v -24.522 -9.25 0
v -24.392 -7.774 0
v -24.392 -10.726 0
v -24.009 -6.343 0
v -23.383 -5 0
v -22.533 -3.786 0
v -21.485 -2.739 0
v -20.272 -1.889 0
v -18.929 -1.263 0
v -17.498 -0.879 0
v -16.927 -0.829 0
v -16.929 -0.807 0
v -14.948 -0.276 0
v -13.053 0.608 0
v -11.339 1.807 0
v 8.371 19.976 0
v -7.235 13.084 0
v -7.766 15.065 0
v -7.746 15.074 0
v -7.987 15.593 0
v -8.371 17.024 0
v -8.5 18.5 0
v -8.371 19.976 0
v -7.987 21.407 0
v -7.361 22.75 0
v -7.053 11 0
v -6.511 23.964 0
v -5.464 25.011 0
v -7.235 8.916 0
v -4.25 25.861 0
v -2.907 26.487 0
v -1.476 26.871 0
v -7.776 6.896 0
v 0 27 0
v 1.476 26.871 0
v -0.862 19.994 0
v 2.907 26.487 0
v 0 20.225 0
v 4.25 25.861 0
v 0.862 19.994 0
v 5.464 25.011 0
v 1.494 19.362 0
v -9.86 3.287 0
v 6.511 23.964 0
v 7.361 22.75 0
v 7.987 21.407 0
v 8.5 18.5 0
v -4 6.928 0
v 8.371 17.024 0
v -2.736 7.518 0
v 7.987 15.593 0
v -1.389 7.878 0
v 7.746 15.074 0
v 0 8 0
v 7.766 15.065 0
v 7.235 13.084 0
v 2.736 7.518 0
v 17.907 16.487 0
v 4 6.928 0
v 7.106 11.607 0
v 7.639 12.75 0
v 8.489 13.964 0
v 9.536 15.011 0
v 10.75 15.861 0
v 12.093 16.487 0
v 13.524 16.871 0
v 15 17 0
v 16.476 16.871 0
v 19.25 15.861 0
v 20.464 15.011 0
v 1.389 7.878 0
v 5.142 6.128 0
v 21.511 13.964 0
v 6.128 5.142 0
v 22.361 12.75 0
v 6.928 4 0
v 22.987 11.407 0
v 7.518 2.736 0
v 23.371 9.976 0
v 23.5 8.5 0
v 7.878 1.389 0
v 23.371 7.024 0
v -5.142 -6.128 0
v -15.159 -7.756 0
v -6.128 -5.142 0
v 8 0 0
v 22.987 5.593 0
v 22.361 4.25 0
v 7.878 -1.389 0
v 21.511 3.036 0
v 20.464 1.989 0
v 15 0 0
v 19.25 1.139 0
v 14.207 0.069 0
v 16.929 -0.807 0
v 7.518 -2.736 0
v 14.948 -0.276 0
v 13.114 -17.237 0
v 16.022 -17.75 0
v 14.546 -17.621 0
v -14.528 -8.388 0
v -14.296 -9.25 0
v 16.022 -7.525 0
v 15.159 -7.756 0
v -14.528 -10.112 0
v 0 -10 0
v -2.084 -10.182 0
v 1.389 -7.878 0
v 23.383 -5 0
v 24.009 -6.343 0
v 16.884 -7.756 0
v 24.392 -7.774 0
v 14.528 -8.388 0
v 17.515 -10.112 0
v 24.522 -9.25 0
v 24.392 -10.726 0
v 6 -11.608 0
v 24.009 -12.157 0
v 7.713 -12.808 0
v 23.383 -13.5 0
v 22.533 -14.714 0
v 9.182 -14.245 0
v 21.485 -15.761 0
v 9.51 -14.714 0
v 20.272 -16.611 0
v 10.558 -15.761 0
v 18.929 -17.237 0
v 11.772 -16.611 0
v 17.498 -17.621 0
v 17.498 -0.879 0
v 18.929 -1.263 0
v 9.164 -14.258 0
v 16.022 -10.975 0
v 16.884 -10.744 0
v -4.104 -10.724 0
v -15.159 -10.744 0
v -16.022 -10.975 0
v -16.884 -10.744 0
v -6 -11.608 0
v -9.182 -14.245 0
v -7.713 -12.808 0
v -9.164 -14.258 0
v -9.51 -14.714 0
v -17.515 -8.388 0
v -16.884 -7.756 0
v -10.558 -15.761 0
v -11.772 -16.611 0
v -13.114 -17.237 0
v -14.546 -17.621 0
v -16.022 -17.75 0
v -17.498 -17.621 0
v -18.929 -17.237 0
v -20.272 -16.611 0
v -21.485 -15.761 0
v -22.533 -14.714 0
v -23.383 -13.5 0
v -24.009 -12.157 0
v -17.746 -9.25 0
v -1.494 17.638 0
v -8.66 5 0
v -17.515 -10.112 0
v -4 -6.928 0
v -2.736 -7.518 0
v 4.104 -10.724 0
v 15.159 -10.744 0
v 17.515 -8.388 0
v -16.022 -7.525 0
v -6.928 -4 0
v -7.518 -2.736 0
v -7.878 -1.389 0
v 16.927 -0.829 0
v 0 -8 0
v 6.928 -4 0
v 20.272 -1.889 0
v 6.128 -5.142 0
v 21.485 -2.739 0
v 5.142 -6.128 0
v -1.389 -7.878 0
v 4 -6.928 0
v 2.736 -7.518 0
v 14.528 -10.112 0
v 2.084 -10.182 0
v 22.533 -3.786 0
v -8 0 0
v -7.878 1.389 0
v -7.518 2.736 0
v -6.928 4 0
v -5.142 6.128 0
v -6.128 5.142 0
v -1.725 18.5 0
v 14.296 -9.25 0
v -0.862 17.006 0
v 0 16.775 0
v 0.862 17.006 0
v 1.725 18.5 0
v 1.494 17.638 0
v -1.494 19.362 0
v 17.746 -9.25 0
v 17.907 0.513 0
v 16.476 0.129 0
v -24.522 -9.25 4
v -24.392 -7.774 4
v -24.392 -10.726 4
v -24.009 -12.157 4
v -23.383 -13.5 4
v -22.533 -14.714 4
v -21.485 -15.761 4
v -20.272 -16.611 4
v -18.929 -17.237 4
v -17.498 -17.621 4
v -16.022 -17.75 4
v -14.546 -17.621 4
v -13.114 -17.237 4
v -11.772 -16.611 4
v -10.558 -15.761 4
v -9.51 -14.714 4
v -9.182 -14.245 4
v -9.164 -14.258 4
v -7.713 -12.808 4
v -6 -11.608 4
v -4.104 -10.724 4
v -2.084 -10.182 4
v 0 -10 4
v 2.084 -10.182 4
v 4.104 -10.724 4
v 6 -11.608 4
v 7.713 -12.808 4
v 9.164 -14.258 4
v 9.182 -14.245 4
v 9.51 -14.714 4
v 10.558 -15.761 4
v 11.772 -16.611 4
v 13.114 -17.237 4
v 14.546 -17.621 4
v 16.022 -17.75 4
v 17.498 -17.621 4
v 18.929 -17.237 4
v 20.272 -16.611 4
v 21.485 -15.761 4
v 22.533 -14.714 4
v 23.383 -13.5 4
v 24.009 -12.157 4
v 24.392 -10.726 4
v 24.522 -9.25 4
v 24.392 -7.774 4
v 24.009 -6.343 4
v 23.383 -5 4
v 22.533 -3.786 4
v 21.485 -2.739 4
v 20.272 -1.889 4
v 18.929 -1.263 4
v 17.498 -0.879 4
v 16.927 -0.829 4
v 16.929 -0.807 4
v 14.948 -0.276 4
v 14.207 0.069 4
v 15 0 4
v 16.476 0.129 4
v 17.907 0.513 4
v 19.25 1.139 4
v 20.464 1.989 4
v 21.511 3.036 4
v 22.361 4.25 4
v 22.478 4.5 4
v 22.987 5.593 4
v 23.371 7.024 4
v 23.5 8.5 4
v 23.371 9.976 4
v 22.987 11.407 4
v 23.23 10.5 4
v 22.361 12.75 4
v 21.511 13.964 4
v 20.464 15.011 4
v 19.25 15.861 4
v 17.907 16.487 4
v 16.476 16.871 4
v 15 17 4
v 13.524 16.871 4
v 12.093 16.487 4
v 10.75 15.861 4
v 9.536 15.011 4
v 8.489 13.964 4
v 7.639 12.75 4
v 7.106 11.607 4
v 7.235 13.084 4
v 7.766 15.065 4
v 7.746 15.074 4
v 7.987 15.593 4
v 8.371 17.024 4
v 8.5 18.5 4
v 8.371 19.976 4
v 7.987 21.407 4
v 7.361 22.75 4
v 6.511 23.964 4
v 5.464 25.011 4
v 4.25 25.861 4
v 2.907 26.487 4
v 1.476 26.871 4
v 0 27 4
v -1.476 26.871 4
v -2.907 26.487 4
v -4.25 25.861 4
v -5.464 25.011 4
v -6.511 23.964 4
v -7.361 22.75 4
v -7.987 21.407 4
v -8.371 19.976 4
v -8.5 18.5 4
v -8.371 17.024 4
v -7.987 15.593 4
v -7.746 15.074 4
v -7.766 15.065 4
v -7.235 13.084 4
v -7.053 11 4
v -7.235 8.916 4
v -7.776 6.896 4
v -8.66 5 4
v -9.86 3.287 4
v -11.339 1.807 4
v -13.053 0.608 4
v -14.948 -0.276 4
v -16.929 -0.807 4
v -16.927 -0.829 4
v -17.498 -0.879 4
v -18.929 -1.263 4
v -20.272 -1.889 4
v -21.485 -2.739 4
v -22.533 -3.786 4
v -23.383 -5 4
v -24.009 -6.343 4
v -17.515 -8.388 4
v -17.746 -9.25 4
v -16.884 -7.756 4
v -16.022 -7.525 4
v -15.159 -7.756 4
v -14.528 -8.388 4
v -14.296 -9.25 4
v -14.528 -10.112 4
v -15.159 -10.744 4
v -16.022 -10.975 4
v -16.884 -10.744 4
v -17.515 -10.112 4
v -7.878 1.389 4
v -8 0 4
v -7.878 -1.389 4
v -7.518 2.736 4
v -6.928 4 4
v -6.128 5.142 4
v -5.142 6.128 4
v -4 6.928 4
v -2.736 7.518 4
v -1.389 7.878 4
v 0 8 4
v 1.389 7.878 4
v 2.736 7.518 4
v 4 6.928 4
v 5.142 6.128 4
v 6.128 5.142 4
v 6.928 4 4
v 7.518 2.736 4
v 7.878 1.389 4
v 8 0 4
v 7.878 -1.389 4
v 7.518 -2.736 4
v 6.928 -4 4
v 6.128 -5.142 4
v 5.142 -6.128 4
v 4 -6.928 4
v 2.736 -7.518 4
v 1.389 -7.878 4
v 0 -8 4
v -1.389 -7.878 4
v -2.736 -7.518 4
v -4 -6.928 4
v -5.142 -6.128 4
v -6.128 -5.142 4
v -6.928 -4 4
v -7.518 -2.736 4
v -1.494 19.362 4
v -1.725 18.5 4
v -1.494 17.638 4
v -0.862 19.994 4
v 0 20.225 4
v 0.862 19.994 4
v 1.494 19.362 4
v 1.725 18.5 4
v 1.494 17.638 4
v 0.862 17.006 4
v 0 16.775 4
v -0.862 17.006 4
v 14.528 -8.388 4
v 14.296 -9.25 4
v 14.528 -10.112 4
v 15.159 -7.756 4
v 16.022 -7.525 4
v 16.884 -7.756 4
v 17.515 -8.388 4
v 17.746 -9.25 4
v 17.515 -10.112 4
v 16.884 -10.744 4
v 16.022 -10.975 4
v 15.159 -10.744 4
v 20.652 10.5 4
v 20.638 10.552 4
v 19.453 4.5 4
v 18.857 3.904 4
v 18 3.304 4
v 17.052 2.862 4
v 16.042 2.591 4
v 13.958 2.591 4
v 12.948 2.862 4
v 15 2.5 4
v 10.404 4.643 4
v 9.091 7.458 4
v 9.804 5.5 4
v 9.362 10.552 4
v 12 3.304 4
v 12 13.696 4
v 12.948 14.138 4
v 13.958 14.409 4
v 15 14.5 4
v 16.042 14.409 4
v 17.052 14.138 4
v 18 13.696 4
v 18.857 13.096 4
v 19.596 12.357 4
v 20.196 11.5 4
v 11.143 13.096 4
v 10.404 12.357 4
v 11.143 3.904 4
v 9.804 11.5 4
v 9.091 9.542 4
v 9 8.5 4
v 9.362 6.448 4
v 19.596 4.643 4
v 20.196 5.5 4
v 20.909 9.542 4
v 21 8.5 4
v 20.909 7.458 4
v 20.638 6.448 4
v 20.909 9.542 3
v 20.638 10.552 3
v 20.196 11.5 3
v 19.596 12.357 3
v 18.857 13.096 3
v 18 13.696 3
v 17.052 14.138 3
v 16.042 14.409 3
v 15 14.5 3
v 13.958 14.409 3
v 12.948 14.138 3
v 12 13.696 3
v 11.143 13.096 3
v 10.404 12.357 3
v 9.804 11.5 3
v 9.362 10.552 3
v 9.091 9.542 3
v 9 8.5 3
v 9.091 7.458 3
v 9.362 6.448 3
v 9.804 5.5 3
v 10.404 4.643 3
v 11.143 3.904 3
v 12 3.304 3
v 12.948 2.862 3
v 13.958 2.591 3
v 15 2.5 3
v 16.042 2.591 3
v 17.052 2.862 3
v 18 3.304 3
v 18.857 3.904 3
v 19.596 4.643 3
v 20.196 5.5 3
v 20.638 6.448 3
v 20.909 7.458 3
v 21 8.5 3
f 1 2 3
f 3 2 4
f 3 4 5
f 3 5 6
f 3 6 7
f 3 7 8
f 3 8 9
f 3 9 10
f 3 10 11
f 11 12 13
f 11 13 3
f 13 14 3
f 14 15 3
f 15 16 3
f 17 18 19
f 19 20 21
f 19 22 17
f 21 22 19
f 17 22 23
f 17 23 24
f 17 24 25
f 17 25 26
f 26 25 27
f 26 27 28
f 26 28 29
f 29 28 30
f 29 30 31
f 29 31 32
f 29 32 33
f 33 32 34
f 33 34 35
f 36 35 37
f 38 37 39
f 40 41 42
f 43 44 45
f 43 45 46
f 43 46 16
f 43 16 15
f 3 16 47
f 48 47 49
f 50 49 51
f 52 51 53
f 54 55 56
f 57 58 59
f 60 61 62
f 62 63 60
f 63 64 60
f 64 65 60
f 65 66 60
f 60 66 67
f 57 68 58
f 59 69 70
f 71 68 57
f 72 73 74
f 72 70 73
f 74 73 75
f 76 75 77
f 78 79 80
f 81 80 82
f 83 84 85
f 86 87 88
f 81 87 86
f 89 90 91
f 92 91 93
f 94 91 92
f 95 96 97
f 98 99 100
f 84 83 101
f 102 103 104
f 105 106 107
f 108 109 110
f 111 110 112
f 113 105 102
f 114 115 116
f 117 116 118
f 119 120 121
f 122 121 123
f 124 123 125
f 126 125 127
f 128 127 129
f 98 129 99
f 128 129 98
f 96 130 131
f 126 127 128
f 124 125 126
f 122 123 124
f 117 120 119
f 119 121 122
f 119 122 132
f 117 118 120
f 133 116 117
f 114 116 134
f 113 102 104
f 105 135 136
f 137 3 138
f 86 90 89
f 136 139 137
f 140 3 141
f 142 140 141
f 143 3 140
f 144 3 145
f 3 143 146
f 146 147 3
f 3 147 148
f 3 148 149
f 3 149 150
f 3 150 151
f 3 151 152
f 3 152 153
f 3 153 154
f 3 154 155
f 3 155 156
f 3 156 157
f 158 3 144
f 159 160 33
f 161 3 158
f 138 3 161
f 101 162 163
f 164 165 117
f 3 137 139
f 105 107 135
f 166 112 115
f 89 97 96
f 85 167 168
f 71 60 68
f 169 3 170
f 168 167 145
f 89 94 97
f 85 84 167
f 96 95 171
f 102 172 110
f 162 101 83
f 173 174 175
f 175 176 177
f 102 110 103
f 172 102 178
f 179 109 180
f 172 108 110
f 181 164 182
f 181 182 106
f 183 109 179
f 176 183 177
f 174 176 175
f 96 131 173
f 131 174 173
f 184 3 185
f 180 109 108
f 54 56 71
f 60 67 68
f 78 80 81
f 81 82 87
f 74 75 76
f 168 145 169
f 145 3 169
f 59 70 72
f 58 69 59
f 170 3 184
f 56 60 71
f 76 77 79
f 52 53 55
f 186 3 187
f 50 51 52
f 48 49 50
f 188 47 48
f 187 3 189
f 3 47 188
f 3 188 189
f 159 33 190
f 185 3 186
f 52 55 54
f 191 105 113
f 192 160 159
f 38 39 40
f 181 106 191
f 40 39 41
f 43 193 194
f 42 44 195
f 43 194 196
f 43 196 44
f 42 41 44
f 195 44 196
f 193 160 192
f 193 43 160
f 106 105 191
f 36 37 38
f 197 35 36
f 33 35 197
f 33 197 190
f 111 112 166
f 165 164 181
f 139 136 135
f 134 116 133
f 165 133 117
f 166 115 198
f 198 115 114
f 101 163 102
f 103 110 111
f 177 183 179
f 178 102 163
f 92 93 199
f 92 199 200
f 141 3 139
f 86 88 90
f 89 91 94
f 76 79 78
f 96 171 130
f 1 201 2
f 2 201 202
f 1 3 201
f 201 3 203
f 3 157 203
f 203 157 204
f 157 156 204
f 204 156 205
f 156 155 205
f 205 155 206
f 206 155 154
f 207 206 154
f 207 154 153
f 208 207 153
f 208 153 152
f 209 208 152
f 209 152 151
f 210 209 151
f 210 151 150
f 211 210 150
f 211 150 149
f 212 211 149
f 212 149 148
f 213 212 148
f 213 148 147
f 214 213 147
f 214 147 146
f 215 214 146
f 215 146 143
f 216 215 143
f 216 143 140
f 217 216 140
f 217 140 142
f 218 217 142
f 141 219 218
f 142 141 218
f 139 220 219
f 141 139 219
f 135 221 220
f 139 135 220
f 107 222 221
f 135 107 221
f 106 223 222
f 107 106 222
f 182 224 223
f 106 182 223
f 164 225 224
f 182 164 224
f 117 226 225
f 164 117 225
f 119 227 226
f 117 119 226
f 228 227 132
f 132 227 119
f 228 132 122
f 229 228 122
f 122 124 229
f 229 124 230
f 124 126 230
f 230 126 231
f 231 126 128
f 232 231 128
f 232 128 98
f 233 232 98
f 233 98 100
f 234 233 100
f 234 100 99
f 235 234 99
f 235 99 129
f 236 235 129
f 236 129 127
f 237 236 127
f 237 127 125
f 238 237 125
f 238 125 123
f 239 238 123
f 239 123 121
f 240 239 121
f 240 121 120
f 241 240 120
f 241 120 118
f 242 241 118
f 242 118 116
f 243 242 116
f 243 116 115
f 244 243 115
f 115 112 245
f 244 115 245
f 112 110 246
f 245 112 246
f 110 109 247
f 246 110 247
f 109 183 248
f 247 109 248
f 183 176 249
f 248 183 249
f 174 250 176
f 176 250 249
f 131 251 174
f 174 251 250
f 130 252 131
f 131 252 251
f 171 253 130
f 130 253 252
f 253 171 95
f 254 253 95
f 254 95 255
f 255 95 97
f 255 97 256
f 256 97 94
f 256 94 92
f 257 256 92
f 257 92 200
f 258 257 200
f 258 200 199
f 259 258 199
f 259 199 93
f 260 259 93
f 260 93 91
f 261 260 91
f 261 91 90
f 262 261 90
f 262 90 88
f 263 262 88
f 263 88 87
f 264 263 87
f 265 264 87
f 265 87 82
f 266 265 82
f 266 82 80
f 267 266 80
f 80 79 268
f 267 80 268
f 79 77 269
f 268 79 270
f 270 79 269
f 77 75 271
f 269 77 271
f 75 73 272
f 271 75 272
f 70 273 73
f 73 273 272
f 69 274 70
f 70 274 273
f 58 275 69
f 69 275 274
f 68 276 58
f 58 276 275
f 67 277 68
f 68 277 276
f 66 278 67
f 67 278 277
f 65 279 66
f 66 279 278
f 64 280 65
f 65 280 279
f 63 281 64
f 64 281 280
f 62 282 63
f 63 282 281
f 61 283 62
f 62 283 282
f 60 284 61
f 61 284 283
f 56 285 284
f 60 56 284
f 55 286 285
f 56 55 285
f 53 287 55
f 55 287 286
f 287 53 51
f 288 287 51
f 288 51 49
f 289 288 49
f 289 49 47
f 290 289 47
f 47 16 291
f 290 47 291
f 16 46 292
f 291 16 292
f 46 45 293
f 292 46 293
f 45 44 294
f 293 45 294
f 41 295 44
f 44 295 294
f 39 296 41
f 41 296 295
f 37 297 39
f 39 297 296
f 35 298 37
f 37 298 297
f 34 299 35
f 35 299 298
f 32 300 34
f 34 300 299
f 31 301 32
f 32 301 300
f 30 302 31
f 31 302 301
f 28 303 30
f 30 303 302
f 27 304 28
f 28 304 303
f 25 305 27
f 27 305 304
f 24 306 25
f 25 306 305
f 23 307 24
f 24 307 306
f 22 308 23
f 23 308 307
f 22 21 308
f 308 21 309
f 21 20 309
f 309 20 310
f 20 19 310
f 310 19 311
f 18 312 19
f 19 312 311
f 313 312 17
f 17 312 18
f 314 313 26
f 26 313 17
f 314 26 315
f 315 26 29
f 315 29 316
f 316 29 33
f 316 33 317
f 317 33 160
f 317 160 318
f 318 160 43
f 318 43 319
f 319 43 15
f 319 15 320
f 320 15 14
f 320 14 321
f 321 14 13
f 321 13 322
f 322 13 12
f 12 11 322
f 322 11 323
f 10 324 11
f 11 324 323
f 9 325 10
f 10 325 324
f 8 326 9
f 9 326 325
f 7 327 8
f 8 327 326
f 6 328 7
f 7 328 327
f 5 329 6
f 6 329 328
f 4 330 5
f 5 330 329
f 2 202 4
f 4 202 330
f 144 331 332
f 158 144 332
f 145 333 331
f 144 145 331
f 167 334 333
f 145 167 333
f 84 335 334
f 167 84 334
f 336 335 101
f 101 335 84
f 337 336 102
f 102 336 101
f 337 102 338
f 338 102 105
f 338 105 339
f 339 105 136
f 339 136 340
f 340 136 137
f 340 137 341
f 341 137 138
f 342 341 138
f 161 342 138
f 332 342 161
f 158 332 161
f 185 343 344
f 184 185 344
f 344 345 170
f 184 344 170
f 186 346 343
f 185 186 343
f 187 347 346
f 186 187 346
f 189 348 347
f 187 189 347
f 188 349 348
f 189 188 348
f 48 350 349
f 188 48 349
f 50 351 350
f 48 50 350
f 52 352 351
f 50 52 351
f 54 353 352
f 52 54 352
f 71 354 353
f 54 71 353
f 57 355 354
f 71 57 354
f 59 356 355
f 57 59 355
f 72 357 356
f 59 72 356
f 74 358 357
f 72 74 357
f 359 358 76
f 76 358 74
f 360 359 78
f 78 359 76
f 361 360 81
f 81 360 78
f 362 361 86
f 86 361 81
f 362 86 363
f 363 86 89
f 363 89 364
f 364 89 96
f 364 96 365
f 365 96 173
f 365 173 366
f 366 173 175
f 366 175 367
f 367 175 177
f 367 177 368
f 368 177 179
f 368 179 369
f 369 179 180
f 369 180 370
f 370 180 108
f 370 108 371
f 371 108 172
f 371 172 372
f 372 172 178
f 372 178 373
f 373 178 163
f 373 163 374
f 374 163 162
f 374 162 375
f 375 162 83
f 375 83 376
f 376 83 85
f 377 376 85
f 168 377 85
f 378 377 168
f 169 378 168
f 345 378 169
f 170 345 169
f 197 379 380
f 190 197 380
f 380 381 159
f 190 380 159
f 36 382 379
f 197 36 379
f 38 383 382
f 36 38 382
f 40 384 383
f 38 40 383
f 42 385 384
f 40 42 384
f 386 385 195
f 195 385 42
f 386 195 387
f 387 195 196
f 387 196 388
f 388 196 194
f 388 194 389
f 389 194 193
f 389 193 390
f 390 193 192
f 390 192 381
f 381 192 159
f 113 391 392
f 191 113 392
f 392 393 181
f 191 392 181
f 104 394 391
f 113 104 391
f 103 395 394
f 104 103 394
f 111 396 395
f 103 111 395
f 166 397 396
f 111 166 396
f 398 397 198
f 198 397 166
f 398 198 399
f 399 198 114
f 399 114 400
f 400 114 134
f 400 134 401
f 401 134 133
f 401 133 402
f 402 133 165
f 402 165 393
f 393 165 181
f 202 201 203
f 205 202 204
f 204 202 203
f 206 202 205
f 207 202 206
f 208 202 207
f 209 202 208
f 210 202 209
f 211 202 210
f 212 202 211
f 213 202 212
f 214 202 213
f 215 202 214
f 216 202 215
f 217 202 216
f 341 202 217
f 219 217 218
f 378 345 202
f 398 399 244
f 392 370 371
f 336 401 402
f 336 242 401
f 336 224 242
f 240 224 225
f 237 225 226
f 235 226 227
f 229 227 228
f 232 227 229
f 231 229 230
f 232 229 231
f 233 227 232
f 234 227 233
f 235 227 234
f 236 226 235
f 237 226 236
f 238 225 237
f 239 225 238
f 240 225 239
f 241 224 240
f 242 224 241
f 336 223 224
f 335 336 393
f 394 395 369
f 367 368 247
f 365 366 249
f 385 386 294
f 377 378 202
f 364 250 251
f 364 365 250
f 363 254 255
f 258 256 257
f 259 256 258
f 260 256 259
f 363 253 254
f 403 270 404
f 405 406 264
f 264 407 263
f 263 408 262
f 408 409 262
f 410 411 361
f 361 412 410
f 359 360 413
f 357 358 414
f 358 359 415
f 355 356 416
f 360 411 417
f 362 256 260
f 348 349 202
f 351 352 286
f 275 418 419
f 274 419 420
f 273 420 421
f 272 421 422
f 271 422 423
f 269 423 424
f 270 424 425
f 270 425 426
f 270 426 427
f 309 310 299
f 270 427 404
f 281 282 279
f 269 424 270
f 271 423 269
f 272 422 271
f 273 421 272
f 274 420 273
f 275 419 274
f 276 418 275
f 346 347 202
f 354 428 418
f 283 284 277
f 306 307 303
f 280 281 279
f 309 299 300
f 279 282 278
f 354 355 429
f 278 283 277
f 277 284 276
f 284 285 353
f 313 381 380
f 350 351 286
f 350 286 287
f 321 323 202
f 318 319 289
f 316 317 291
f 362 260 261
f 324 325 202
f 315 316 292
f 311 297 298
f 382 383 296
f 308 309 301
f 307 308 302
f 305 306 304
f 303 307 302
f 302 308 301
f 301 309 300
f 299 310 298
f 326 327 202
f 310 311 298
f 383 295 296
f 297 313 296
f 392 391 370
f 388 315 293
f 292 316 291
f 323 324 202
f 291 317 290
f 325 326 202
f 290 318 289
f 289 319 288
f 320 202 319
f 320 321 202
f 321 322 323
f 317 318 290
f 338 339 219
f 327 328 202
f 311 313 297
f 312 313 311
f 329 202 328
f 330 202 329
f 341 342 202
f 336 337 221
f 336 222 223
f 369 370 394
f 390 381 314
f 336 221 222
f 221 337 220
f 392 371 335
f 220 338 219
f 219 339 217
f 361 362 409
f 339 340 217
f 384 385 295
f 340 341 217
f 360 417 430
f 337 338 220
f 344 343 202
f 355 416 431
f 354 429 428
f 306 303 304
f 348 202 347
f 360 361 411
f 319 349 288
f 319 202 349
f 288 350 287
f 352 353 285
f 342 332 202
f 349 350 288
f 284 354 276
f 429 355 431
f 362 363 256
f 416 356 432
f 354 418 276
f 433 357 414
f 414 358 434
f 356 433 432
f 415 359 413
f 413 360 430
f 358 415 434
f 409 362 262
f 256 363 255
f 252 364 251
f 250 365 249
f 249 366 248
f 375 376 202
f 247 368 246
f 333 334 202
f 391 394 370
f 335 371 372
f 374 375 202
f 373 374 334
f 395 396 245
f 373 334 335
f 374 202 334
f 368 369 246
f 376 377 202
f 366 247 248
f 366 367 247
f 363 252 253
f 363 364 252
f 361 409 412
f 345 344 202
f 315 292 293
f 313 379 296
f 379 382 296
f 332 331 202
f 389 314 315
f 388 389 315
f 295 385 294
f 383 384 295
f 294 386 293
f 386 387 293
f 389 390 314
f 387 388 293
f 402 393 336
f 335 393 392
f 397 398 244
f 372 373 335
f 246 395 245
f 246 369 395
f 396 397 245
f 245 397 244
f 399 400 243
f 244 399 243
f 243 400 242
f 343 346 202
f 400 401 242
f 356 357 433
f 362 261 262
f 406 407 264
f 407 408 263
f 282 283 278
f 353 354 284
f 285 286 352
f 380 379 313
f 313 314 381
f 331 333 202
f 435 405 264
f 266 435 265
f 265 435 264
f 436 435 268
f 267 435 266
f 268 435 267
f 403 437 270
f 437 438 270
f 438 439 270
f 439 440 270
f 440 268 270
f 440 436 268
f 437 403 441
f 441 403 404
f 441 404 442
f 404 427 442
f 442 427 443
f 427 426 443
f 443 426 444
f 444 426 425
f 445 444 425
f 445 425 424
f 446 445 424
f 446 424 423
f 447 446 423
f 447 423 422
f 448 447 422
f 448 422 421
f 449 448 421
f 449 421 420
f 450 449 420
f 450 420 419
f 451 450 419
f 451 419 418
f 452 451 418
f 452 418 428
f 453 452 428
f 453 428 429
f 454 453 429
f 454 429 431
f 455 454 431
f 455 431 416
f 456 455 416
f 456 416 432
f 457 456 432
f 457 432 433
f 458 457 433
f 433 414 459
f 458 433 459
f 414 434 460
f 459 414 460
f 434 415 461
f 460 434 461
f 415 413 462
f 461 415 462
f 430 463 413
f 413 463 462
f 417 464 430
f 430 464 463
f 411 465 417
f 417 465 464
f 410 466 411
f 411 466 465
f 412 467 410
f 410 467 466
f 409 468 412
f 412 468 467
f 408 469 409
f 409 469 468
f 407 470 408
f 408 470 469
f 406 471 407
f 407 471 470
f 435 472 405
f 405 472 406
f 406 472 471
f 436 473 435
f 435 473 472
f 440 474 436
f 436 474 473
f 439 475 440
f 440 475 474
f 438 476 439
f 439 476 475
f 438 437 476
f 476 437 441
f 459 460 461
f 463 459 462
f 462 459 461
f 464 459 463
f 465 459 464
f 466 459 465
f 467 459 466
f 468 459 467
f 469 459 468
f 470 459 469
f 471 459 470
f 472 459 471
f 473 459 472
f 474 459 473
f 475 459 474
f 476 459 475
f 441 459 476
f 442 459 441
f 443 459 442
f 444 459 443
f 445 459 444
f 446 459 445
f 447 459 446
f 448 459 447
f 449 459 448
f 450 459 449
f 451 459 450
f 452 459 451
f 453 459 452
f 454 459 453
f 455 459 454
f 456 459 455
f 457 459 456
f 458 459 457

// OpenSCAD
// file: fan_mount.scad
/*
OPENSCAD Library file by the DoomMeister
Mounting surround for small DC fans (25 - 120mm)

Data taken from various places around the internet.
http://www.qwikflow.com/dc_fans.html

//Released under the terms of the GNU GPL v3.0
This program is free software: you can redistribute it and/or modify
it under the terms of the GNU General Public License as published by
the Free Software Foundation, either version 3 of the License, or
(at your option) any later version.

This program is distributed in the hope that it will be useful,
but WITHOUT ANY WARRANTY; without even the implied warranty of
MERCHANTABILITY or FITNESS FOR A PARTICULAR PURPOSE. See the
GNU General Public License for more details.

You should have received a copy of the GNU General Public License
along with this program. If not, see <http://www.gnu.org/licenses/>.
*/

//uncomment this for example
//fan_mount(size=60,thick=3);

module fan_mount(size=40,thick = 4)
{
if(size == 25)
	{
	_fan_mount(
			fan_size = 25,
			fan_mounting_pitch = 20,
			fan_m_hole_dia = 3,
			holder_thickness = thick
		 );
	}
if(size == 30)
	{
	_fan_mount(
			fan_size = 30,
			fan_mounting_pitch = 24,
			fan_m_hole_dia = 3,
			holder_thickness = thick
		 );
	}

if(size == 40)
	{
	_fan_mount(
			fan_size = 40,
			fan_mounting_pitch = 32,
			fan_m_hole_dia = 3.5,
			holder_thickness = thick
		 );
	}
if(size == 45)
	{
	_fan_mount(
			fan_size = 45,
			fan_mounting_pitch = 37,
			fan_m_hole_dia = 4.3,
			holder_thickness = thick
		 );
	}
if(size == 60)
	{
	_fan_mount(
			fan_size = 60,
			fan_mounting_pitch = 50,
			fan_m_hole_dia = 4.4,
			holder_thickness = thick
		 );
	}
if(size == 80)
	{
	_fan_mount(
			fan_size = 80,
			fan_mounting_pitch = 71.5,
			fan_m_hole_dia = 4.4,
			holder_thickness = thick
		 );
	}

if(size == 120)
	{
	_fan_mount(
			fan_size = 120,
			fan_mounting_pitch = 105,
			fan_m_hole_dia = 4.4,
			holder_thickness = thick
		 );
	}
}


//inner module
module _fan_mount(
			fan_size, //nominsl size of fan
			fan_mounting_pitch, //pitch between mounting holes
			fan_m_hole_dia, //mounting hole diameter
			holder_thickness //user defined thickness
		 )
{

offset1 = (fan_size-(fan_mounting_pitch + fan_m_hole_dia))/2;
offset2 = (fan_size-(fan_mounting_pitch))/2;
offset3 = offset2 + fan_mounting_pitch;
thickness = (fan_size-fan_mounting_pitch)/2;	
			
			//difference()
			//{
			linear_extrude(height = holder_thickness)
			union()
			{	
			difference()
			{
				translate([fan_m_hole_dia/2,fan_m_hole_dia/2,0])
				minkowski()
				{	
					square([fan_size - fan_m_hole_dia,fan_size - fan_m_hole_dia]);
					circle(r= fan_m_hole_dia/2, $fn=20);
				}
			
					translate([offset1,offset1,0])
					square([fan_mounting_pitch + fan_m_hole_dia,fan_mounting_pitch + fan_m_hole_dia]);
				}
				translate([offset2,offset2,0])
				rotate([0,0,0])_corner_hole();
				translate([offset3,offset2,0])
				rotate([0,0,90])_corner_hole();
				translate([offset2,offset3,0])
				rotate([0,0,90])_corner_hole();
				translate([offset3,offset3,0])
				rotate([0,0,0])_corner_hole();
			}

module _corner_hole()
{
				difference(){
					union(){
							difference(){
							square([fan_m_hole_dia + thickness,fan_m_hole_dia + thickness],center=true);
							square([(fan_m_hole_dia + thickness)/2,(fan_m_hole_dia + thickness)/2],center=false);
							translate([-(fan_m_hole_dia + thickness)/2,-(fan_m_hole_dia + thickness)/2])
							square([(fan_m_hole_dia + thickness)/2,(fan_m_hole_dia + thickness)/2],center=false);
							}
					circle(r=(fan_m_hole_dia + thickness)/2, $fn=20);
					}
					circle(r=(fan_m_hole_dia)/2, $fn=20);
				}
}


echo(offset1,offset2,thickness);
}
// file: configuration.scad
// Increase this if your slicer or printer make holes too tight.
extra_radius = 0.1;

// OD = outside diameter, corner to corner.
m3_nut_od = 6.1;
m3_nut_radius = m3_nut_od/2 + 0.2 + extra_radius;

// Major diameter of metric 3mm thread.
m3_major = 2.85;
m3_radius = m3_major/2 + extra_radius;
m3_wide_radius = m3_major/2 + extra_radius + 0.2;

// OD = outside diameter, corner to corner.
m5_nut_od = 8.1;
m5_nut_radius = m5_nut_od/2 + 0.2 + extra_radius;

// Major diameter of metric 5mm thread.
m5_major = 4.85;
m5_radius = m5_major/2 + extra_radius;
m5_wide_radius = m5_major/2 + extra_radius + 0.2;

// NEMA17 stepper motors.
motor_shaft_diameter = 5;
motor_shaft_radius = motor_shaft_diameter/2 + extra_radius;

// Frame brackets. M3x8mm screws work best with 3.6 mm brackets.
thickness = 3.6;

// OpenBeam or Misumi. Currently only 15x15 mm, but there is a plan
// to make models more parametric and allow 20x20 mm in the future.
extrusion = 15;
// main file
include <configuration.scad>;
include <fan_mount.scad>;

separation = 44;  // Distance between ball joint mounting faces.
offset = 22;  // Same as DELTA_EFFECTOR_OFFSET in Marlin.
mount_radius = 18.5;  // Hotend mounting screws, standard would be 25mm.
jhead_od_radius = 8;  // Hole for the hotend (J-Head diameter is 16mm).
jhead_id_radius = 6;
height = 4;
jhead_height=2.5;

module fan_stud(){
       difference(){
          cube([40,10,8]);
          translate([0,4,0]) cube([40,6,4]);
          }
}


module A8452_mount() {
           difference(){
             cube([16,27,4]);
             union() {
               translate([3,8,0]) cylinder(r=m3_wide_radius, h=2*height, center=true, $fn=12);
               translate([3,23,0]) cylinder(r=m3_wide_radius, h=2*height, center=true, $fn=12);
              }
          }
}

module mount_cap() {
  difference() {
    union() {
        // Mount for MMA8452 Module
        // translate([-8,mount_radius+12.2,-2]) rotate(a=[90,0,0]) A8452_mount();        
        
        // Do a bracket to push the fan down a bit
        // translate([-20,-17,-2]) rotate(a=[90,0,0]) fan_stud();
        // translate([-20,-21,8]) rotate(a=[90,0,0]) fan_mount(size=40,thick=4);    
		cylinder(r=offset-5, h=height, center=true, $fn=36);
		
		 for (a = [0:120:359]) rotate([0, 0, a]) {
      	translate([0, mount_radius, 0])	cylinder(r=8.5, h=height, center=true, $fn=36);
    		}
        
	}
    
    translate([0, 0, -height/2])cylinder(r=jhead_od_radius, h=height, $fn=36);
    translate([0, 0, -height/2+jhead_height])cylinder(r=jhead_od_radius, h=jhead_height, $fn=36);

    for (a = [0:120:359]) rotate([0, 0, a]) {
      translate([0, mount_radius, height/2])	cylinder(r=m3_wide_radius, h=2*height, center=true, $fn=12);
    }

	
    for (a = [60:120:359]) rotate([0, 0, a]) {
      translate([0, offset, height/2])	cylinder(r=12, h=2*height, center=true, $fn=36);
    }

  }
// Mount for FSR
        difference(){
          translate([15, mount_radius-10, 0]) cylinder(r=8.5, h=height, center=true, $fn=36);
          union() {
              translate([15, mount_radius-10, height-2]) cylinder(r=6.0, h=height/2, center=true, $fn=36);
              translate([14, mount_radius-14, height-2]) cube([10,6,height/2]);
              }
          }
}

translate([0, 0, height/2]) mount_cap();
